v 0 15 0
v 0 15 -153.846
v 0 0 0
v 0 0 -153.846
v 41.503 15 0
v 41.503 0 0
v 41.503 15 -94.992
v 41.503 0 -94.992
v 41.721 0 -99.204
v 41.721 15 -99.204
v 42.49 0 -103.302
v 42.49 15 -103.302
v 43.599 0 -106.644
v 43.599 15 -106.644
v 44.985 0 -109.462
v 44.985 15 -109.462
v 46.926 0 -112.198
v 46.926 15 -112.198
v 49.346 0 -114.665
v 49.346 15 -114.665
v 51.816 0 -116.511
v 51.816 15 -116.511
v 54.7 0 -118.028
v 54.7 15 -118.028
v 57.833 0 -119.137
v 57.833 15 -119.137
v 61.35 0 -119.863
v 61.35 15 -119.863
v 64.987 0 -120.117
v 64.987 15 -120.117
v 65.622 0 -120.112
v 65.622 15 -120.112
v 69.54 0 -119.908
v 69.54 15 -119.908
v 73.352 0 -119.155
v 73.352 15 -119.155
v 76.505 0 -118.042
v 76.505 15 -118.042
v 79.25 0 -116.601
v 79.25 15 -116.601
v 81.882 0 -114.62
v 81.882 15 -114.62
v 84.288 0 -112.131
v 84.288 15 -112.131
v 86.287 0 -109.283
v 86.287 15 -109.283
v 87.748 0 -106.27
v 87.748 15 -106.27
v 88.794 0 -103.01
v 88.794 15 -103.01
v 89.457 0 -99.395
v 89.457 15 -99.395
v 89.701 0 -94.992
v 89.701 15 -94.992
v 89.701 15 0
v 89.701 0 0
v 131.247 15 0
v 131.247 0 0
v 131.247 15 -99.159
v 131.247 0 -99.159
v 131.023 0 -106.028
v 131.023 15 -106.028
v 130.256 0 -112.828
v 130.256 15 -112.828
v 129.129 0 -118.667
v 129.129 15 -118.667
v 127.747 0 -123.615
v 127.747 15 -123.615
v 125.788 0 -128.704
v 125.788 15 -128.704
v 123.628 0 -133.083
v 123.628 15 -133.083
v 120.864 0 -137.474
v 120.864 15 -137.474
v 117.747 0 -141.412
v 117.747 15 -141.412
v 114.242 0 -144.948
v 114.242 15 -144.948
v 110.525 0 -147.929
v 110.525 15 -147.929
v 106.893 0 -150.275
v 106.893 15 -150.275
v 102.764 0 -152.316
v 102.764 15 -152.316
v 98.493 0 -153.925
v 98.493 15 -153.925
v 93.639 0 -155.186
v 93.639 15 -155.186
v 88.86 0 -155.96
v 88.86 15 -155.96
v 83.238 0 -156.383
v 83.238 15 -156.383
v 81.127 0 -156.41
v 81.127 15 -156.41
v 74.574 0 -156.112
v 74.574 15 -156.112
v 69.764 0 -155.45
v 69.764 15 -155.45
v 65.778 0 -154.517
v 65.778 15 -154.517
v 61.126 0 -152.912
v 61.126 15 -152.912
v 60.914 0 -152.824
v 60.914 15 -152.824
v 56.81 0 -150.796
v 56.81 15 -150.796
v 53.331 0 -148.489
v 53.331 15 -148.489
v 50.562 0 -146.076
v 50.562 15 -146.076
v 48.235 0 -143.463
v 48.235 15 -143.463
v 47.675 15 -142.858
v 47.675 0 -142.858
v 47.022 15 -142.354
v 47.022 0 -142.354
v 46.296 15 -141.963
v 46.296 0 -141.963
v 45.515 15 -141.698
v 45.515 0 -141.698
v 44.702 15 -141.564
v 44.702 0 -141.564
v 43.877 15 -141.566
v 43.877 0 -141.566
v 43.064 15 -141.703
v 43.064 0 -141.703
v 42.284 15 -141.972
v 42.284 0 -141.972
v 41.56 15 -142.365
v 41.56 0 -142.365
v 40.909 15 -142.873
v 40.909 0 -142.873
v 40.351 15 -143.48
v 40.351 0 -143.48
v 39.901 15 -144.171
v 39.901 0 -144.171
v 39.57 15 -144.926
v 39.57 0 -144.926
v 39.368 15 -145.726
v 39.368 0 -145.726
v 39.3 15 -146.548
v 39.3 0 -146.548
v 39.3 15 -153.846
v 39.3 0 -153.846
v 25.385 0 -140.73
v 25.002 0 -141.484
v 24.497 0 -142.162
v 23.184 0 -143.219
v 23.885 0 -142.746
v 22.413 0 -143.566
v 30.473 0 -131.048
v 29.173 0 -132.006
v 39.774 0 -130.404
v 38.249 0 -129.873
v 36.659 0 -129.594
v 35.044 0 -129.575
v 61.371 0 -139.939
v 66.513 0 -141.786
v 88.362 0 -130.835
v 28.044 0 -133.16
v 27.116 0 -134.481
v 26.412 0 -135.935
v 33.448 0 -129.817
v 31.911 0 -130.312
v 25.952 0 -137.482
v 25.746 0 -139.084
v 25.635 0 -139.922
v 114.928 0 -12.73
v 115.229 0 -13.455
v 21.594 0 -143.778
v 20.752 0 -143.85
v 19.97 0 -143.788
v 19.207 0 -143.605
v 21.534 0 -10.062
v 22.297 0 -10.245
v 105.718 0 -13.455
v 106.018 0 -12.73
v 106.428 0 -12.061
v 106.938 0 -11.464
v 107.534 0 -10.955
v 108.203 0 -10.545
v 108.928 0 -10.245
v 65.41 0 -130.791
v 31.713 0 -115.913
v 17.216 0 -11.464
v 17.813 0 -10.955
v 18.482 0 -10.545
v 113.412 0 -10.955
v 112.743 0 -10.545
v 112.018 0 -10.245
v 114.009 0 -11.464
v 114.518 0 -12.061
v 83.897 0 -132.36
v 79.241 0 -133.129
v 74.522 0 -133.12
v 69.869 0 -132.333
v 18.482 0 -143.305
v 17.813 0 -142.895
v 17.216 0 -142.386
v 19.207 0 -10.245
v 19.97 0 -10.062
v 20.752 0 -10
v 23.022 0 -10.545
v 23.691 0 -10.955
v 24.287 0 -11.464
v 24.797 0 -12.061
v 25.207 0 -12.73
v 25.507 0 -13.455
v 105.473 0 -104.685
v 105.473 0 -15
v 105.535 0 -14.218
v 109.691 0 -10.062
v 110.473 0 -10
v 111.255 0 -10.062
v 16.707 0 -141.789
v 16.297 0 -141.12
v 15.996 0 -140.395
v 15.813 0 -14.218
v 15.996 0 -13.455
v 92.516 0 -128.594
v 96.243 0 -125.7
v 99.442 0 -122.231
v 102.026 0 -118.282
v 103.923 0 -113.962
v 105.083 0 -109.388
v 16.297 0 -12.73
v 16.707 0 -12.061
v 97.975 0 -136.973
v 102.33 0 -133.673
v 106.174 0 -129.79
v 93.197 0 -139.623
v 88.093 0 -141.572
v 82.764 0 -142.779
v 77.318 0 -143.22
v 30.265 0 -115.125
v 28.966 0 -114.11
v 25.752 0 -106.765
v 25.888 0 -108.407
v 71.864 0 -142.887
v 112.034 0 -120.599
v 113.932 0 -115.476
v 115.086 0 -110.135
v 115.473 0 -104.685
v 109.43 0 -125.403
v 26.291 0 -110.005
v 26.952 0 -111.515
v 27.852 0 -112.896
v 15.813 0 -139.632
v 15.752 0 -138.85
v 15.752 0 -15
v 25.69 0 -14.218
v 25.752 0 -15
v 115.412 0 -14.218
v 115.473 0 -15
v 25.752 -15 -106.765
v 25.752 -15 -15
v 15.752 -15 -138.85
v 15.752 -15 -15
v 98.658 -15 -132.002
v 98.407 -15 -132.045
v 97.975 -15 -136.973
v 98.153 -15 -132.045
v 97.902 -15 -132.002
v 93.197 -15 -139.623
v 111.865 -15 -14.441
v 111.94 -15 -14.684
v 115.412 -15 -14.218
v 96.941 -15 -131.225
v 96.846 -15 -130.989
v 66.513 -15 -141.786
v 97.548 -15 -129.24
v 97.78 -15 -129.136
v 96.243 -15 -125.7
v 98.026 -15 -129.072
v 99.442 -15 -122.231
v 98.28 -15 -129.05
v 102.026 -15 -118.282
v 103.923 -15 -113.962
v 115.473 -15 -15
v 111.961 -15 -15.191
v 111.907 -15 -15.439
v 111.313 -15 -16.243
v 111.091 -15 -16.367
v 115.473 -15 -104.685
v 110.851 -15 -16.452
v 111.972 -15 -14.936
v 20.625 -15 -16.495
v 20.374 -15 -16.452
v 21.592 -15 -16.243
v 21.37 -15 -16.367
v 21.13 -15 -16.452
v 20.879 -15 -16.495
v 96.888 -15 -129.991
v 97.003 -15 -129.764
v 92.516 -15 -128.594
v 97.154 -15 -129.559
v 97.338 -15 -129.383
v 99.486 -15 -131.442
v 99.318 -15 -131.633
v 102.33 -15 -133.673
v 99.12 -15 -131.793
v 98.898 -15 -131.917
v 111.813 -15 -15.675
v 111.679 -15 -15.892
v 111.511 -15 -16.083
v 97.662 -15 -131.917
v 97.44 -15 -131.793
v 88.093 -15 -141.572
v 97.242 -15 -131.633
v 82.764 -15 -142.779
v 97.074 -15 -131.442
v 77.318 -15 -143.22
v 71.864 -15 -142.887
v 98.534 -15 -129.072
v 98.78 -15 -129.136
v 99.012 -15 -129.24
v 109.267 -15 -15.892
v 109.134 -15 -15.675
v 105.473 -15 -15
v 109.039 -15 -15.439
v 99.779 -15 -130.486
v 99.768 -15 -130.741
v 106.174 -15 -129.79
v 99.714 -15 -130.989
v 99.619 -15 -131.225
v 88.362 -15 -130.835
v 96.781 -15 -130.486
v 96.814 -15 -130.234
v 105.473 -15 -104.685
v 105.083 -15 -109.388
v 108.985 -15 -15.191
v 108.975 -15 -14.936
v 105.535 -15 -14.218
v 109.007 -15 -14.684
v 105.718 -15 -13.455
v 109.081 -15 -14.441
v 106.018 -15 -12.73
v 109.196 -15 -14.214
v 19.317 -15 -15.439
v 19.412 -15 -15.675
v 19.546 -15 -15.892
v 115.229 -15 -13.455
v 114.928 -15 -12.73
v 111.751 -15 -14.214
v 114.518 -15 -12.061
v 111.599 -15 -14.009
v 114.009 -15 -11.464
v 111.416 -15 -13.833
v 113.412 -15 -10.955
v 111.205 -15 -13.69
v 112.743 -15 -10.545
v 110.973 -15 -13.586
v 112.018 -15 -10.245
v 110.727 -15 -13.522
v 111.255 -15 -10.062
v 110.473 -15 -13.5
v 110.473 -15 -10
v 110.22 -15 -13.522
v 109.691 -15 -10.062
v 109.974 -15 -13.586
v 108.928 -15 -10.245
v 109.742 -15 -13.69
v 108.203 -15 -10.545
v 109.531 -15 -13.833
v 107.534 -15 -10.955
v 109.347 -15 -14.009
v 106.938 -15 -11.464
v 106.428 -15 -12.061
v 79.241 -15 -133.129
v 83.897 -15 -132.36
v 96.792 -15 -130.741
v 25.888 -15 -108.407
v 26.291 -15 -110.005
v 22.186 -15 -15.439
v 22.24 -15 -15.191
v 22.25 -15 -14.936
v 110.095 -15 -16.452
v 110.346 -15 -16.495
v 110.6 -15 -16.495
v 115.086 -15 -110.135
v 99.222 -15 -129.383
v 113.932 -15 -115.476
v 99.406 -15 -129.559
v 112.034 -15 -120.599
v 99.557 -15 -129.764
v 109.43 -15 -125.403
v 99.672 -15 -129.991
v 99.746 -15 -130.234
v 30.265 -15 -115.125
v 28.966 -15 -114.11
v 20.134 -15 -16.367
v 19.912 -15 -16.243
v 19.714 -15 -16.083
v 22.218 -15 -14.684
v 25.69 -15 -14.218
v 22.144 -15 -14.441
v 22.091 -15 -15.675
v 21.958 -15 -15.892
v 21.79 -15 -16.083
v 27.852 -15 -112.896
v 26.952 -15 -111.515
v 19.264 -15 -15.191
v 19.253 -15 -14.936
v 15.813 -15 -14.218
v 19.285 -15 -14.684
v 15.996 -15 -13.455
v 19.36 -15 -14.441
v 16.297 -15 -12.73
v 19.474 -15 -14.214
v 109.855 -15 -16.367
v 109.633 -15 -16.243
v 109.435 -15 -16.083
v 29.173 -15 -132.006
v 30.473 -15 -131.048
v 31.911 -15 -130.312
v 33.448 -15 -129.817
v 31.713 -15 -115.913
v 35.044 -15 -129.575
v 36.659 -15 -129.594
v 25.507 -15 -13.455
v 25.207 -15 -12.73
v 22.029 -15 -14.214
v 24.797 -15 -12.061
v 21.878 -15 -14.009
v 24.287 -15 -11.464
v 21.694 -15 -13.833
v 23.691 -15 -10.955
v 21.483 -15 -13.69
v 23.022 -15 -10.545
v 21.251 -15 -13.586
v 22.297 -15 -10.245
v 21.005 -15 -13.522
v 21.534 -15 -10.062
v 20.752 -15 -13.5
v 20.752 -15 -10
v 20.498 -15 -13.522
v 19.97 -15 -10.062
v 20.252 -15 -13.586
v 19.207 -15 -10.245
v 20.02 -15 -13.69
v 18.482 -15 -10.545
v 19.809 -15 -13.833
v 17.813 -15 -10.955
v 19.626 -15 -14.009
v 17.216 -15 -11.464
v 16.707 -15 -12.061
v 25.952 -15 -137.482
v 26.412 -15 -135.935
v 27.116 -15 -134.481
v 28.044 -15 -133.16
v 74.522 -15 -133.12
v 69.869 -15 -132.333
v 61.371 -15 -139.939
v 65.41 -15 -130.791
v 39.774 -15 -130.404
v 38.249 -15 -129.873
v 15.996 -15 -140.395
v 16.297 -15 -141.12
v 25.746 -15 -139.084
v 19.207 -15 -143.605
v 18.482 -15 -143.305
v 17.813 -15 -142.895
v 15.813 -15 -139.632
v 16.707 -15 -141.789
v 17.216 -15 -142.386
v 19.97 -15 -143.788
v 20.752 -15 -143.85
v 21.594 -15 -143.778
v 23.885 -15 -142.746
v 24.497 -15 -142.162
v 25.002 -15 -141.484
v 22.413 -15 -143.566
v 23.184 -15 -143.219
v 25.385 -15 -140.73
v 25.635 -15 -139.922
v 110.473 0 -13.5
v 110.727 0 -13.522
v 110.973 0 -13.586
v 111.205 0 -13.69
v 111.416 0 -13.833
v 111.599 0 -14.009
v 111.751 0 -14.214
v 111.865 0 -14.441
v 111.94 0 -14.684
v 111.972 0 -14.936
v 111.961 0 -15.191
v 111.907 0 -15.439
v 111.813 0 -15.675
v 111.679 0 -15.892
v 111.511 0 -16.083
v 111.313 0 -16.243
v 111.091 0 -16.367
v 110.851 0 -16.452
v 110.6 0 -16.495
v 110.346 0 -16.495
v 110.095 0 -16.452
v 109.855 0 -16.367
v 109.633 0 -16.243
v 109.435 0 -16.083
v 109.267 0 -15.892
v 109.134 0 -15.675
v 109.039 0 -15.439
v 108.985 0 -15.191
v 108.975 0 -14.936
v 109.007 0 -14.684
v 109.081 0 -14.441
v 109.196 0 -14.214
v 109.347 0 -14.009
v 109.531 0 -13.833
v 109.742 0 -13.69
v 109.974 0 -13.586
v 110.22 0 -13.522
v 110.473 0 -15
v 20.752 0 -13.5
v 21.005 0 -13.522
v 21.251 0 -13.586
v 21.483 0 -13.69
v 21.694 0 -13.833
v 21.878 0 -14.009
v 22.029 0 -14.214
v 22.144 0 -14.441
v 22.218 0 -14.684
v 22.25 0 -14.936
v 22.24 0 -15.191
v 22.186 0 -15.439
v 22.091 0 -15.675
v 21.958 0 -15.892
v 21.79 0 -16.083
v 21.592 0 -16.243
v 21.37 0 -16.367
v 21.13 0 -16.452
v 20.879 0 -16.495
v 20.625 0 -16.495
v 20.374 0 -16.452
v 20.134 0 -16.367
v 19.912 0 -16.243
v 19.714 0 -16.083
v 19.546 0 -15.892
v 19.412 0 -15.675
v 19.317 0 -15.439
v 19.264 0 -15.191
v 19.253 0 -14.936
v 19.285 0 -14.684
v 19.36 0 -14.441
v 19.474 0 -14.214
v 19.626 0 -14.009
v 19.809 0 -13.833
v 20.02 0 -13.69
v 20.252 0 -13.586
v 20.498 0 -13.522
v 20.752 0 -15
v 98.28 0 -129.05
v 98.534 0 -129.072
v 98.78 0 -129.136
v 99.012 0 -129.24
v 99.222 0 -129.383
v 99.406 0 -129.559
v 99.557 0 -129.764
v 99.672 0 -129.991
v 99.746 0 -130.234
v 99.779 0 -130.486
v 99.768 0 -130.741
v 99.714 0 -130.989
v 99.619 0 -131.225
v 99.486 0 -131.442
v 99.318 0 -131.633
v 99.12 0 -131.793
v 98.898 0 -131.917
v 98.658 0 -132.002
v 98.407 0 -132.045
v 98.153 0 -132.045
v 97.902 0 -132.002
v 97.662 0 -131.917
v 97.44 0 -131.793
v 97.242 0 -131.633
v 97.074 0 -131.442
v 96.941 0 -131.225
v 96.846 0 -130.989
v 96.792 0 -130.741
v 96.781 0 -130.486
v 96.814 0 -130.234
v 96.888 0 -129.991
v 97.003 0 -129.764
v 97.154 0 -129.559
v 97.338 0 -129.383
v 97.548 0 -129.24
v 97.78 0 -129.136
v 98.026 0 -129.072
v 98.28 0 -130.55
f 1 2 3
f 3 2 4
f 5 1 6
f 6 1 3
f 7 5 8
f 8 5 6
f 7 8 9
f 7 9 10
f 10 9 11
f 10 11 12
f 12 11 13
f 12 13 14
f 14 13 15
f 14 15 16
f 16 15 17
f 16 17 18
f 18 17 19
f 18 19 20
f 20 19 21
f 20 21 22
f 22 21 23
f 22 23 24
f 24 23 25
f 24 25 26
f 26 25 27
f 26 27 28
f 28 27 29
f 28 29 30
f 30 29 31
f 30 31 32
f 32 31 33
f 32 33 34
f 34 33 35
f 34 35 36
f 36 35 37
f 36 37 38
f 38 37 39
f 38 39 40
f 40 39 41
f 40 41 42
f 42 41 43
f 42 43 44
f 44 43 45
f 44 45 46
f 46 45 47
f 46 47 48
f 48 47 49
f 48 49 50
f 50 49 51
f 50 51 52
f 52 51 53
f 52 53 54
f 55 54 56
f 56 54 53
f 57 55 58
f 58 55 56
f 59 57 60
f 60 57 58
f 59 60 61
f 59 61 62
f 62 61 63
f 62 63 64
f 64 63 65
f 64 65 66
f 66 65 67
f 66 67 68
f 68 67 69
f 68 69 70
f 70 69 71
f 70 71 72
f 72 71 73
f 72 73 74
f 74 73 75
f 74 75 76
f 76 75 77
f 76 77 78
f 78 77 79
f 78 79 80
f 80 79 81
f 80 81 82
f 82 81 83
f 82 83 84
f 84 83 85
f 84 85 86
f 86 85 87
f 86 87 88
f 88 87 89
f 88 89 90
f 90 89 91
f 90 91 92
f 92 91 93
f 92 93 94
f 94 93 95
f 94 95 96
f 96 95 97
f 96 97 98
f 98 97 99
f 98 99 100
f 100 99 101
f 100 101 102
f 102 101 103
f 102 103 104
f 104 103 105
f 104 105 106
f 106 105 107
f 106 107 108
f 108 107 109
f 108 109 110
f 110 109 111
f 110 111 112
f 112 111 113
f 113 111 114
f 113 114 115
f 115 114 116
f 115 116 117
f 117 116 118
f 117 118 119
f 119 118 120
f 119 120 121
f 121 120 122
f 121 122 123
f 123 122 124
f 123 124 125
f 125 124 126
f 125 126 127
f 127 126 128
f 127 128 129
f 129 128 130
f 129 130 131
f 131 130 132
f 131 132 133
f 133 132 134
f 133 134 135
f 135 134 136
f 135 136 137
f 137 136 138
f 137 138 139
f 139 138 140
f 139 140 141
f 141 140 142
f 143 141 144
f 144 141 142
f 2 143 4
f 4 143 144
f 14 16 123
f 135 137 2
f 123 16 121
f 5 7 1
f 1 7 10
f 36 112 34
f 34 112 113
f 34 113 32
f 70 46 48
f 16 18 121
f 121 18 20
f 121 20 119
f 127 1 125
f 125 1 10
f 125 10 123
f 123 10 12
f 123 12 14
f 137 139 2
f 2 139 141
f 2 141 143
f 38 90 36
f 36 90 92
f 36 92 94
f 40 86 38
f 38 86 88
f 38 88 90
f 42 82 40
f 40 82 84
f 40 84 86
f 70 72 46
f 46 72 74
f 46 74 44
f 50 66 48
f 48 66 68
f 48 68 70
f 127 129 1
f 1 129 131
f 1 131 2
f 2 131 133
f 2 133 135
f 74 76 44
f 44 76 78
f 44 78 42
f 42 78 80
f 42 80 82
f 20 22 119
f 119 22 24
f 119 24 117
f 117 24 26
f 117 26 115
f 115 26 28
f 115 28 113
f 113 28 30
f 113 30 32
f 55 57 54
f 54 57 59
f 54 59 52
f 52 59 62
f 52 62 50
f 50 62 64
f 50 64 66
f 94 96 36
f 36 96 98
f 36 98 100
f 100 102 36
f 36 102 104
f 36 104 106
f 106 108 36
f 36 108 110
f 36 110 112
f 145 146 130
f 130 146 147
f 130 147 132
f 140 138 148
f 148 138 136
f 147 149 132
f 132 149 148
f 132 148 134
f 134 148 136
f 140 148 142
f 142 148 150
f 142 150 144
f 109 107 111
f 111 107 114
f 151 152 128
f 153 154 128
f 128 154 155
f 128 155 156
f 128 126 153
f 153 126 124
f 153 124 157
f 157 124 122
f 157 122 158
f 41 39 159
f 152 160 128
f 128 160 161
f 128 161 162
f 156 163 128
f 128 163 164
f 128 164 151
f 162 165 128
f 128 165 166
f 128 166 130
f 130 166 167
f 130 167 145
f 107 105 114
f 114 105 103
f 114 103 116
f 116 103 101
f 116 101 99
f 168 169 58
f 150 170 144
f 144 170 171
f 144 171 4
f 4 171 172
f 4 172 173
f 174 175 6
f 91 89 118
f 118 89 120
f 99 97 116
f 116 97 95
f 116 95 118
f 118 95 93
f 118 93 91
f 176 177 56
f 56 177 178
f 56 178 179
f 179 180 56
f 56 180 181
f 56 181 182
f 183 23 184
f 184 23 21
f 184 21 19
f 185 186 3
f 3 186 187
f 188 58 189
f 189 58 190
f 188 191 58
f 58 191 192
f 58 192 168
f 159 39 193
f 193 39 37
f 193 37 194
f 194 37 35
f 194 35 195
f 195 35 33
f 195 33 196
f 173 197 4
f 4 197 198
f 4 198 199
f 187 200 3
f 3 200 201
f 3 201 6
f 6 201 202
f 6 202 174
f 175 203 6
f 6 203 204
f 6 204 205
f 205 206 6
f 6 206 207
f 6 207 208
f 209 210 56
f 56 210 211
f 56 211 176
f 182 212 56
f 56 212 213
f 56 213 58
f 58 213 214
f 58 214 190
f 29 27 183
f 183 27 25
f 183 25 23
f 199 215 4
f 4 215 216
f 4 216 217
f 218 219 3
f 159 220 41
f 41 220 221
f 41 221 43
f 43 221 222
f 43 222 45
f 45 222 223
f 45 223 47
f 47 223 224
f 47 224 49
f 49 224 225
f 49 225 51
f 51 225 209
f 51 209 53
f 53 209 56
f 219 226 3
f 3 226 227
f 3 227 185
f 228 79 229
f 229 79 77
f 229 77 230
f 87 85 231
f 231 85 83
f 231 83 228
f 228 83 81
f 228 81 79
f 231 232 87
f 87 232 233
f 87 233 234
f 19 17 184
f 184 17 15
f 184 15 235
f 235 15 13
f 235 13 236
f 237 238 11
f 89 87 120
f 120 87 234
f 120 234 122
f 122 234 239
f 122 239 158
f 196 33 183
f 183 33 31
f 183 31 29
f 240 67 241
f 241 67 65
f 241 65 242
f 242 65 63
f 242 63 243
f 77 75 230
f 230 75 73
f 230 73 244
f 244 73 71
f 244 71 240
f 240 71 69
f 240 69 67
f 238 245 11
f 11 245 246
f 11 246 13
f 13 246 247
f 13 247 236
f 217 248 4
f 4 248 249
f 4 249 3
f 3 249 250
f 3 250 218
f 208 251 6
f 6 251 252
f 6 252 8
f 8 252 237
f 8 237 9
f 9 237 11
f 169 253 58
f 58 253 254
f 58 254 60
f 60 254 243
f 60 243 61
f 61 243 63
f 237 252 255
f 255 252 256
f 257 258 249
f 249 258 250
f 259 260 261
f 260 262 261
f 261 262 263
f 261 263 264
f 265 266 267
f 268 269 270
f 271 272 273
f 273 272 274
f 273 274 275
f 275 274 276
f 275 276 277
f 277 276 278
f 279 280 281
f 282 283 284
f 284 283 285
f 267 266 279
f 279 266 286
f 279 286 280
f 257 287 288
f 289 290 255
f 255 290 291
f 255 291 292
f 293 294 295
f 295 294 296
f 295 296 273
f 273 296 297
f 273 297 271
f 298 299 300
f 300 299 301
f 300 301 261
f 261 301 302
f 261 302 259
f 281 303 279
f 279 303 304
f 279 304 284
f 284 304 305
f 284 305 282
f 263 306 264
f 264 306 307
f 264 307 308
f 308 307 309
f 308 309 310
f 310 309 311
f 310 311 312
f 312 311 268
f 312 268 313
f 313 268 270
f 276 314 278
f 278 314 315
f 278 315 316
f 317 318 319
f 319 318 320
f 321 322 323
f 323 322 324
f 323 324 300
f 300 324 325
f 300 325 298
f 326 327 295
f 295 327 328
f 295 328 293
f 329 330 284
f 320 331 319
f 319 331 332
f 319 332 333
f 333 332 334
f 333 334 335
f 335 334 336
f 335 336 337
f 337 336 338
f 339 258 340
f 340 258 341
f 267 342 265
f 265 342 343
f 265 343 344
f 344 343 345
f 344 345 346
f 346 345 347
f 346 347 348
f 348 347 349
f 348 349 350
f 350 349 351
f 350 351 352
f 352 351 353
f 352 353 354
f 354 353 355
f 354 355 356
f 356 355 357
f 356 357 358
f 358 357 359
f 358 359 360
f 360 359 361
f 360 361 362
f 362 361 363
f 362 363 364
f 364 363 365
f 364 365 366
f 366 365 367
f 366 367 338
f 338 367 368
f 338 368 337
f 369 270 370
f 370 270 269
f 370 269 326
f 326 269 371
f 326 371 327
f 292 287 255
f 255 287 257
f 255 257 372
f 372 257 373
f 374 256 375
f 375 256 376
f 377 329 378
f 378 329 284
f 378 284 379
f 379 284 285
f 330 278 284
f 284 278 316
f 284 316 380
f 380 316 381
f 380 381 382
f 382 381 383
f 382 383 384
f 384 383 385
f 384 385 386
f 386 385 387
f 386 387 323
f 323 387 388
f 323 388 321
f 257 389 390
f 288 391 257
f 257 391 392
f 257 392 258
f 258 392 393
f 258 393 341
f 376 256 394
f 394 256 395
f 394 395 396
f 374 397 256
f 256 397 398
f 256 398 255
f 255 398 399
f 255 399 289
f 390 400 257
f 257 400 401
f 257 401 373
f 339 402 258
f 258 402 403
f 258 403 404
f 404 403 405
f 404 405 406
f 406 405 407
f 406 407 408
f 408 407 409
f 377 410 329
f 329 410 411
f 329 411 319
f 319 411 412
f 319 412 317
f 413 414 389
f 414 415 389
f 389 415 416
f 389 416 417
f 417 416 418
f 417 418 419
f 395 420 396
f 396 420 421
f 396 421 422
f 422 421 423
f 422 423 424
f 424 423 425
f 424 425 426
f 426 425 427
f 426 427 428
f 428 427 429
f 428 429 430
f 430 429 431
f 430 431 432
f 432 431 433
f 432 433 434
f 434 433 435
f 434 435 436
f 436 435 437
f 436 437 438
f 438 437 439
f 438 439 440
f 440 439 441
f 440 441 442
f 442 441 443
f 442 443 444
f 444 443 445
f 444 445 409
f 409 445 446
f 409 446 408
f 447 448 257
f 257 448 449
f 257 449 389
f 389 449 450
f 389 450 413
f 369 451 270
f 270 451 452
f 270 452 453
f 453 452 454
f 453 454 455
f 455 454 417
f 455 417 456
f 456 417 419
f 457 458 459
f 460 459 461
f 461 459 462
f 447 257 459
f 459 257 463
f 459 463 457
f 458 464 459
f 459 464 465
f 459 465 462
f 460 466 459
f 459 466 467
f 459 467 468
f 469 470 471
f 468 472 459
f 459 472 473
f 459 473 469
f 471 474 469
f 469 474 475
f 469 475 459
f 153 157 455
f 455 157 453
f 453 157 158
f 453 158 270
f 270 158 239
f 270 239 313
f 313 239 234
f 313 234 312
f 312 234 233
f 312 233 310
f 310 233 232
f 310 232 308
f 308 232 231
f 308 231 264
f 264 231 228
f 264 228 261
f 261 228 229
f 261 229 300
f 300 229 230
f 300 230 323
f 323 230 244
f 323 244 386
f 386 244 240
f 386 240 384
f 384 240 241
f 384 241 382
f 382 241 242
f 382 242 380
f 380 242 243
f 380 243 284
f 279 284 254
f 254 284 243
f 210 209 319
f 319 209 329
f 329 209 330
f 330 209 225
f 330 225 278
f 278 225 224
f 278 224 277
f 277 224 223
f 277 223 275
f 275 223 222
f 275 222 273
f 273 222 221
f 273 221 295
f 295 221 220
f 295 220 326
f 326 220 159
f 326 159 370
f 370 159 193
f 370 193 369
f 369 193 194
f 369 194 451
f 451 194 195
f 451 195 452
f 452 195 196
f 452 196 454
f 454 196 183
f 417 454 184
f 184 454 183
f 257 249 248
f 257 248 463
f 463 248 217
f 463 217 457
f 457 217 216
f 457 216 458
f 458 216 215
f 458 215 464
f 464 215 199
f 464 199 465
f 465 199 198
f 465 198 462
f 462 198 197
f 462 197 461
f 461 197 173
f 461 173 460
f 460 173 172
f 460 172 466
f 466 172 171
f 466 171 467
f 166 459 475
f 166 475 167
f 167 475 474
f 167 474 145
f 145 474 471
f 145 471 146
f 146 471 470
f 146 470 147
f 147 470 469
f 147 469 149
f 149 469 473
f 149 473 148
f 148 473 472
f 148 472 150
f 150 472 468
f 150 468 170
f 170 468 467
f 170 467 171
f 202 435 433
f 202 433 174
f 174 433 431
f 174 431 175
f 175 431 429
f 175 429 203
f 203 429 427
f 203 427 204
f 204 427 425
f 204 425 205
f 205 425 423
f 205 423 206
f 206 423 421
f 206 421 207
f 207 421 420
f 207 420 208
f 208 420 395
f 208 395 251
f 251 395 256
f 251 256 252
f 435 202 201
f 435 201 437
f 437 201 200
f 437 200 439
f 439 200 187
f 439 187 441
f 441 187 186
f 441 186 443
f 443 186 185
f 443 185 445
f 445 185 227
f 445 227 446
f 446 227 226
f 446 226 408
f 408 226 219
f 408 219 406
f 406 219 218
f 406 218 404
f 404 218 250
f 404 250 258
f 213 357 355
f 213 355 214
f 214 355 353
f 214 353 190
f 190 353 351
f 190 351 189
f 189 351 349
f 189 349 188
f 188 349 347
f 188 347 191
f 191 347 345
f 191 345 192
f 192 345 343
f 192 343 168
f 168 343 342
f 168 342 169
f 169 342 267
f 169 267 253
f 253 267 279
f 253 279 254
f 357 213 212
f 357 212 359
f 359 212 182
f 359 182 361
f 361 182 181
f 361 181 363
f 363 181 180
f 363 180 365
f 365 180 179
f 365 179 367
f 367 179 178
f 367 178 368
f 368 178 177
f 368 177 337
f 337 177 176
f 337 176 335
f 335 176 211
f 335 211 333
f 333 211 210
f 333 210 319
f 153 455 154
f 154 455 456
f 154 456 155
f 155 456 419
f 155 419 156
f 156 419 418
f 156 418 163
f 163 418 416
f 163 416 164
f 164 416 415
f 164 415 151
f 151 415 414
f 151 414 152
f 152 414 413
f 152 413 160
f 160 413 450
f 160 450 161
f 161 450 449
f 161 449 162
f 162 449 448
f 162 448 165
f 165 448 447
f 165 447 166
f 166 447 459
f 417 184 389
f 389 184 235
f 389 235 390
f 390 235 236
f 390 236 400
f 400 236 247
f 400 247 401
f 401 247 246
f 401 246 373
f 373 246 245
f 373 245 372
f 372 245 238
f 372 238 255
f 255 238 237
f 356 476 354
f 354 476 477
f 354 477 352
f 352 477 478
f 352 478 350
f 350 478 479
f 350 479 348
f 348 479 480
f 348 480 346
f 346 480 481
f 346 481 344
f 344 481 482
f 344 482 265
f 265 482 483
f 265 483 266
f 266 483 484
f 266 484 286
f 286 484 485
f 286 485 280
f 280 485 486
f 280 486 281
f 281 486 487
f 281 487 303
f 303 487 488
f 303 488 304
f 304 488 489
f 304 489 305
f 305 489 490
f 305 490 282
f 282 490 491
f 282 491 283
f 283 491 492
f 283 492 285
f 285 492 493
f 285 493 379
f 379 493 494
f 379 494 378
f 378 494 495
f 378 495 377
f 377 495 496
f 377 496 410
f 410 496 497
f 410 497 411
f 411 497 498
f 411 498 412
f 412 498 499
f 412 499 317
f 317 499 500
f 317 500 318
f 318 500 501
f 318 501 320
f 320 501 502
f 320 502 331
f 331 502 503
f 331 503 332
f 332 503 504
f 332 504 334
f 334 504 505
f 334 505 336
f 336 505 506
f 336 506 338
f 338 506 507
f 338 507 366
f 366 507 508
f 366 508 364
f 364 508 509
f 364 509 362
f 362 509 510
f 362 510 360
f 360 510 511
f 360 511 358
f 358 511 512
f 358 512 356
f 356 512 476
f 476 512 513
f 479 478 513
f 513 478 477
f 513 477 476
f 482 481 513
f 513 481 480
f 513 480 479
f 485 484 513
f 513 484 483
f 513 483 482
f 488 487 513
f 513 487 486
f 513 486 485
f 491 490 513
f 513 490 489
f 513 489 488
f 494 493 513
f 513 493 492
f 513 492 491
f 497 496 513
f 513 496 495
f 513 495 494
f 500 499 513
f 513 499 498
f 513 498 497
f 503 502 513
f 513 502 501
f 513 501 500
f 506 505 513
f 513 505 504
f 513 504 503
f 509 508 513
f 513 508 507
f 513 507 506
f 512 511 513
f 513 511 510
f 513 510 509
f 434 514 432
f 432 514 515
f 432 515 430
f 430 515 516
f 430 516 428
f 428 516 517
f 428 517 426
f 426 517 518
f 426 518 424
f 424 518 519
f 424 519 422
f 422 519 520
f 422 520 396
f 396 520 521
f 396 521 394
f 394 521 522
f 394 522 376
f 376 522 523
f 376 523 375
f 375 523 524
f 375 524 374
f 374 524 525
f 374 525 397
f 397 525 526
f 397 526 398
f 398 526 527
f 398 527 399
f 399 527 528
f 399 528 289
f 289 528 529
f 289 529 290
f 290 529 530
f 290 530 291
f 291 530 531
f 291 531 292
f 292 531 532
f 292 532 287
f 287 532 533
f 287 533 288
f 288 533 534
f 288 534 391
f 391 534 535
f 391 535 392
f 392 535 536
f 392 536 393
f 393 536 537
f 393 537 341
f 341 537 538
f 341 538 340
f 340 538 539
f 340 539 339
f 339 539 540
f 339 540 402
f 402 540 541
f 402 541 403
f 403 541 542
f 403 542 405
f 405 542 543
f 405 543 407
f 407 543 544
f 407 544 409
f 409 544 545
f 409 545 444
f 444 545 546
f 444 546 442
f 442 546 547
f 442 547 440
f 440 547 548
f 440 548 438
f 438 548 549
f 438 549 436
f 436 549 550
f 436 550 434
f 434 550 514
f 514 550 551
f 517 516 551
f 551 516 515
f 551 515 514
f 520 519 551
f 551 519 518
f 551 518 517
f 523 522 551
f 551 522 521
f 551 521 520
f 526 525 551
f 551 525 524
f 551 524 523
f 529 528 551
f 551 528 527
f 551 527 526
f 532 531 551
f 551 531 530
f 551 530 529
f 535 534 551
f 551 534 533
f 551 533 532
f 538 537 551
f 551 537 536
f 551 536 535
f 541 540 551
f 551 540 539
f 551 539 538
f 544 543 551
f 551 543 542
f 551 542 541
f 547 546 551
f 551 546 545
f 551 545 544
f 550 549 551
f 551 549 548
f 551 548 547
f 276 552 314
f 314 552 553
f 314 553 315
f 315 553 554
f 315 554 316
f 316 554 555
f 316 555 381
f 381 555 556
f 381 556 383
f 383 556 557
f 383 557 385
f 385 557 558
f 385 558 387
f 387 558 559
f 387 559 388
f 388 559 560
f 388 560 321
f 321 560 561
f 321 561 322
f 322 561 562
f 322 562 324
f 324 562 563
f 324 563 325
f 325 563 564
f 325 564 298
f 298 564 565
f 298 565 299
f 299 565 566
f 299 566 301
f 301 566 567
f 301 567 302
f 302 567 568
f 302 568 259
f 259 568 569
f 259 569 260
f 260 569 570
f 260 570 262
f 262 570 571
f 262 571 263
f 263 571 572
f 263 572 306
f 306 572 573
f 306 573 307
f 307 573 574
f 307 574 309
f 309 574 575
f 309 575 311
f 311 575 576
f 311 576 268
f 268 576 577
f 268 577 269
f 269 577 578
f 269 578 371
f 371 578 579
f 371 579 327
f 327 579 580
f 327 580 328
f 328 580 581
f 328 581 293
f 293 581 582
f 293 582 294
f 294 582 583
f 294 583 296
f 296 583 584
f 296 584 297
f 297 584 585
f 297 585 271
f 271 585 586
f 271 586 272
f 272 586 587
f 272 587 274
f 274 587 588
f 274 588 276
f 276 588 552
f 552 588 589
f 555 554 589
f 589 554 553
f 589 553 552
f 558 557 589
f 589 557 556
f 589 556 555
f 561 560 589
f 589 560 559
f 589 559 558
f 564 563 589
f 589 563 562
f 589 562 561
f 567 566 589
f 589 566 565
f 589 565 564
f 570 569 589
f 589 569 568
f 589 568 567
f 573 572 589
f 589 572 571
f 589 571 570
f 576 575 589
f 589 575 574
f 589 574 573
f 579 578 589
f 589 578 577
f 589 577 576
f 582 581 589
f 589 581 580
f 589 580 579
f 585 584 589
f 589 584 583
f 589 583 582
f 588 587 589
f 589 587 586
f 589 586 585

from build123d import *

# Parameters (mm, degrees)
EXTRUDE_N_DEPTH        = 15
EXTRUDE_START          = -15
EXTRUDE_1247_DEPTH     = 15
FILLET_1323_R          = 5
FILLET_1704_R          = 10
SKETCH_1866_R          = 1.5
CUT_EXTRUDE_1874_DEPTH = 205.73302307


# Read off the part's stored shape, not the designer's step: Крепёж подсветки
with BuildPart() as part:
    # Эскиз n → n (new body)
    with BuildSketch(Plane(origin=(0, 0, 0), x_dir=(1, 0, 0), z_dir=(0, 1, 0))):
        with BuildLine():
            Line((0, 153.846153846), (39.299935897, 153.846153846))
            Line((39.299935897, 153.846153846), (39.299935897, 146.547635651))
            ThreePointArc((39.299935897, 146.547635651), (42.668493546, 141.821284431), (48.235294238, 143.463327831))
            add(Edge.make_bspline(
                [(48.235294238, 143.463327831), (48.680235544, 144.031041426), (49.805362072, 145.350365147), (51.780881441, 147.296733708), (54.221156894, 149.205536006), (56.895496579, 150.901537566), (59.76640372, 152.374012934), (62.852222566, 153.625097643), (66.119942525, 154.659854718), (69.589237805, 155.463125454), (74.594167261, 156.227638993), (78.47972692, 156.380969617), (81.126858974, 156.41025641)],
                knots=[0.312672271, 0.312672271, 0.312672271, 0.312672271, 0.353305114, 0.410247876, 0.468663539, 0.527537938, 0.588459477, 0.650230395, 0.714969493, 0.781418224, 0.850708434, 1, 1, 1, 1], degree=3))
            add(Edge.make_bspline(
                [(81.126858974, 156.41025641), (84.859720001, 156.426218167), (90.317082636, 155.957777721), (97.302679405, 154.400552389), (102.070561998, 152.693026297), (106.574200345, 150.583974492), (110.703488298, 147.904651559), (114.548128603, 144.805781264), (118.036996775, 141.222819891), (121.14631588, 137.227946624), (123.864208469, 132.851585446), (126.126383474, 128.112461575), (128.040546504, 123.027665479), (129.455521339, 117.556714971), (130.87166816, 109.597055945), (131.274075332, 103.391251973), (131.247051282, 99.158653846)],
                knots=[0, 0, 0, 0, 0.129841575, 0.189943736, 0.248604894, 0.305783081, 0.362648635, 0.419493286, 0.477347716, 0.536300993, 0.595380588, 0.656296956, 0.718809931, 0.784206619, 0.852684575, 1, 1, 1, 1], degree=3))
            Line((131.247051282, 99.158653846), (131.247051282, 0))
            Line((131.247051282, 0), (89.700576923, 0))
            Line((89.700576923, 0), (89.700576923, 94.991987179))
            add(Edge.make_bspline(
                [(89.700576923, 94.991987179), (89.724152638, 98.525793473), (89.038605734, 103.707632052), (86.189788042, 109.795689468), (83.284125509, 113.481677505), (79.754151619, 116.49899904), (73.94336902, 119.402249568), (68.995321139, 120.166486998), (65.622051282, 120.112179487)],
                knots=[0, 0, 0, 0, 0.270259745, 0.391050185, 0.508669627, 0.625837927, 0.742508846, 1, 1, 1, 1], degree=3))
            add(Edge.make_bspline(
                [(65.622051282, 120.112179487), (62.246048707, 120.173531263), (57.293638347, 119.387703313), (51.452904124, 116.499817419), (47.884444323, 113.49367552), (44.967404733, 109.804274849), (42.196227012, 103.687541079), (41.462060906, 98.533886415), (41.503461538, 94.991987179)],
                knots=[0, 0, 0, 0, 0.257168251, 0.374600508, 0.492402658, 0.609874601, 0.73007917, 1, 1, 1, 1], degree=3))
            Line((41.503461538, 94.991987179), (41.503461538, 0))
            Line((41.503461538, 0), (0, 0))
            Line((0, 0), (0, 153.846153846))
        make_face()
    extrude(amount=EXTRUDE_N_DEPTH)

    # Extrude 1247 outline → Extrude 1247 (add)
    with BuildSketch(Plane(origin=(0, 0, 0), x_dir=(1, 0, 0), z_dir=(0, 1, 0)).offset(EXTRUDE_START)):
        with BuildLine():
            Line((15.751731, 10), (25.751731, 10))
            Line((25.751731, 10), (25.751731, 113.28080684))
            Line((25.751731, 113.28080684), (65.409736151, 130.790882853))
            ThreePointArc((65.409736151, 130.790882853), (92.515549907, 128.594316344), (105.473237, 104.685146786))
            Line((105.473237, 104.685146786), (105.473237, 10))
            Line((105.473237, 10), (115.473237, 10))
            Line((115.473237, 10), (115.473237, 104.685146786))
            ThreePointArc((115.473237, 104.685146786), (97.974906411, 136.97258744), (61.370650839, 139.938876614))
            Line((61.370650839, 139.938876614), (25.751731, 124.212165411))
            Line((25.751731, 124.212165411), (25.751731, 143.85))
            Line((25.751731, 143.85), (15.751731, 143.85))
            Line((15.751731, 143.85), (15.751731, 10))
        make_face()
    extrude(amount=EXTRUDE_1247_DEPTH)

    # Fillet 1323
    fillet_1323_edges = [part.edges().sort_by_distance(p)[0] for p in [
        (25.751731, -7.5, -143.85),
        (15.751731, -7.5, -143.85),
        (15.751731, -7.5, -10),
        (25.751731, -7.5, -10),
        (105.473237, -7.5, -10),
        (115.473237, -7.5, -10),
    ]]
    fillet(fillet_1323_edges, radius=FILLET_1323_R - 0.0001)  # a hair under: the kernel refuses the full size

    # Fillet 1704
    fillet_1704_edges = [part.edges().sort_by_distance(p)[0] for p in [
        (25.751731, -7.5, -124.212165411),
        (25.751731, -7.5, -113.28080684),
    ]]
    fillet(fillet_1704_edges, radius=FILLET_1704_R)

    # Sketch 1866 → Cut-Extrude 1874 (cut, through all)
    with BuildSketch(Plane(origin=(0, 0, 0), x_dir=(1, 0, 0), z_dir=(0, 1, 0))):
        with Locations(Location((98.28, 130.55, 0), (0, 0, 270))):
            Circle(SKETCH_1866_R)
        with Locations(Location((20.751731, 15, 0), (0, 0, 270))):
            Circle(SKETCH_1866_R)
        with Locations(Location((110.473237, 15, 0), (0, 0, 270))):
            Circle(SKETCH_1866_R)
    extrude(amount=-CUT_EXTRUDE_1874_DEPTH, mode=Mode.SUBTRACT)


solid = part.part
